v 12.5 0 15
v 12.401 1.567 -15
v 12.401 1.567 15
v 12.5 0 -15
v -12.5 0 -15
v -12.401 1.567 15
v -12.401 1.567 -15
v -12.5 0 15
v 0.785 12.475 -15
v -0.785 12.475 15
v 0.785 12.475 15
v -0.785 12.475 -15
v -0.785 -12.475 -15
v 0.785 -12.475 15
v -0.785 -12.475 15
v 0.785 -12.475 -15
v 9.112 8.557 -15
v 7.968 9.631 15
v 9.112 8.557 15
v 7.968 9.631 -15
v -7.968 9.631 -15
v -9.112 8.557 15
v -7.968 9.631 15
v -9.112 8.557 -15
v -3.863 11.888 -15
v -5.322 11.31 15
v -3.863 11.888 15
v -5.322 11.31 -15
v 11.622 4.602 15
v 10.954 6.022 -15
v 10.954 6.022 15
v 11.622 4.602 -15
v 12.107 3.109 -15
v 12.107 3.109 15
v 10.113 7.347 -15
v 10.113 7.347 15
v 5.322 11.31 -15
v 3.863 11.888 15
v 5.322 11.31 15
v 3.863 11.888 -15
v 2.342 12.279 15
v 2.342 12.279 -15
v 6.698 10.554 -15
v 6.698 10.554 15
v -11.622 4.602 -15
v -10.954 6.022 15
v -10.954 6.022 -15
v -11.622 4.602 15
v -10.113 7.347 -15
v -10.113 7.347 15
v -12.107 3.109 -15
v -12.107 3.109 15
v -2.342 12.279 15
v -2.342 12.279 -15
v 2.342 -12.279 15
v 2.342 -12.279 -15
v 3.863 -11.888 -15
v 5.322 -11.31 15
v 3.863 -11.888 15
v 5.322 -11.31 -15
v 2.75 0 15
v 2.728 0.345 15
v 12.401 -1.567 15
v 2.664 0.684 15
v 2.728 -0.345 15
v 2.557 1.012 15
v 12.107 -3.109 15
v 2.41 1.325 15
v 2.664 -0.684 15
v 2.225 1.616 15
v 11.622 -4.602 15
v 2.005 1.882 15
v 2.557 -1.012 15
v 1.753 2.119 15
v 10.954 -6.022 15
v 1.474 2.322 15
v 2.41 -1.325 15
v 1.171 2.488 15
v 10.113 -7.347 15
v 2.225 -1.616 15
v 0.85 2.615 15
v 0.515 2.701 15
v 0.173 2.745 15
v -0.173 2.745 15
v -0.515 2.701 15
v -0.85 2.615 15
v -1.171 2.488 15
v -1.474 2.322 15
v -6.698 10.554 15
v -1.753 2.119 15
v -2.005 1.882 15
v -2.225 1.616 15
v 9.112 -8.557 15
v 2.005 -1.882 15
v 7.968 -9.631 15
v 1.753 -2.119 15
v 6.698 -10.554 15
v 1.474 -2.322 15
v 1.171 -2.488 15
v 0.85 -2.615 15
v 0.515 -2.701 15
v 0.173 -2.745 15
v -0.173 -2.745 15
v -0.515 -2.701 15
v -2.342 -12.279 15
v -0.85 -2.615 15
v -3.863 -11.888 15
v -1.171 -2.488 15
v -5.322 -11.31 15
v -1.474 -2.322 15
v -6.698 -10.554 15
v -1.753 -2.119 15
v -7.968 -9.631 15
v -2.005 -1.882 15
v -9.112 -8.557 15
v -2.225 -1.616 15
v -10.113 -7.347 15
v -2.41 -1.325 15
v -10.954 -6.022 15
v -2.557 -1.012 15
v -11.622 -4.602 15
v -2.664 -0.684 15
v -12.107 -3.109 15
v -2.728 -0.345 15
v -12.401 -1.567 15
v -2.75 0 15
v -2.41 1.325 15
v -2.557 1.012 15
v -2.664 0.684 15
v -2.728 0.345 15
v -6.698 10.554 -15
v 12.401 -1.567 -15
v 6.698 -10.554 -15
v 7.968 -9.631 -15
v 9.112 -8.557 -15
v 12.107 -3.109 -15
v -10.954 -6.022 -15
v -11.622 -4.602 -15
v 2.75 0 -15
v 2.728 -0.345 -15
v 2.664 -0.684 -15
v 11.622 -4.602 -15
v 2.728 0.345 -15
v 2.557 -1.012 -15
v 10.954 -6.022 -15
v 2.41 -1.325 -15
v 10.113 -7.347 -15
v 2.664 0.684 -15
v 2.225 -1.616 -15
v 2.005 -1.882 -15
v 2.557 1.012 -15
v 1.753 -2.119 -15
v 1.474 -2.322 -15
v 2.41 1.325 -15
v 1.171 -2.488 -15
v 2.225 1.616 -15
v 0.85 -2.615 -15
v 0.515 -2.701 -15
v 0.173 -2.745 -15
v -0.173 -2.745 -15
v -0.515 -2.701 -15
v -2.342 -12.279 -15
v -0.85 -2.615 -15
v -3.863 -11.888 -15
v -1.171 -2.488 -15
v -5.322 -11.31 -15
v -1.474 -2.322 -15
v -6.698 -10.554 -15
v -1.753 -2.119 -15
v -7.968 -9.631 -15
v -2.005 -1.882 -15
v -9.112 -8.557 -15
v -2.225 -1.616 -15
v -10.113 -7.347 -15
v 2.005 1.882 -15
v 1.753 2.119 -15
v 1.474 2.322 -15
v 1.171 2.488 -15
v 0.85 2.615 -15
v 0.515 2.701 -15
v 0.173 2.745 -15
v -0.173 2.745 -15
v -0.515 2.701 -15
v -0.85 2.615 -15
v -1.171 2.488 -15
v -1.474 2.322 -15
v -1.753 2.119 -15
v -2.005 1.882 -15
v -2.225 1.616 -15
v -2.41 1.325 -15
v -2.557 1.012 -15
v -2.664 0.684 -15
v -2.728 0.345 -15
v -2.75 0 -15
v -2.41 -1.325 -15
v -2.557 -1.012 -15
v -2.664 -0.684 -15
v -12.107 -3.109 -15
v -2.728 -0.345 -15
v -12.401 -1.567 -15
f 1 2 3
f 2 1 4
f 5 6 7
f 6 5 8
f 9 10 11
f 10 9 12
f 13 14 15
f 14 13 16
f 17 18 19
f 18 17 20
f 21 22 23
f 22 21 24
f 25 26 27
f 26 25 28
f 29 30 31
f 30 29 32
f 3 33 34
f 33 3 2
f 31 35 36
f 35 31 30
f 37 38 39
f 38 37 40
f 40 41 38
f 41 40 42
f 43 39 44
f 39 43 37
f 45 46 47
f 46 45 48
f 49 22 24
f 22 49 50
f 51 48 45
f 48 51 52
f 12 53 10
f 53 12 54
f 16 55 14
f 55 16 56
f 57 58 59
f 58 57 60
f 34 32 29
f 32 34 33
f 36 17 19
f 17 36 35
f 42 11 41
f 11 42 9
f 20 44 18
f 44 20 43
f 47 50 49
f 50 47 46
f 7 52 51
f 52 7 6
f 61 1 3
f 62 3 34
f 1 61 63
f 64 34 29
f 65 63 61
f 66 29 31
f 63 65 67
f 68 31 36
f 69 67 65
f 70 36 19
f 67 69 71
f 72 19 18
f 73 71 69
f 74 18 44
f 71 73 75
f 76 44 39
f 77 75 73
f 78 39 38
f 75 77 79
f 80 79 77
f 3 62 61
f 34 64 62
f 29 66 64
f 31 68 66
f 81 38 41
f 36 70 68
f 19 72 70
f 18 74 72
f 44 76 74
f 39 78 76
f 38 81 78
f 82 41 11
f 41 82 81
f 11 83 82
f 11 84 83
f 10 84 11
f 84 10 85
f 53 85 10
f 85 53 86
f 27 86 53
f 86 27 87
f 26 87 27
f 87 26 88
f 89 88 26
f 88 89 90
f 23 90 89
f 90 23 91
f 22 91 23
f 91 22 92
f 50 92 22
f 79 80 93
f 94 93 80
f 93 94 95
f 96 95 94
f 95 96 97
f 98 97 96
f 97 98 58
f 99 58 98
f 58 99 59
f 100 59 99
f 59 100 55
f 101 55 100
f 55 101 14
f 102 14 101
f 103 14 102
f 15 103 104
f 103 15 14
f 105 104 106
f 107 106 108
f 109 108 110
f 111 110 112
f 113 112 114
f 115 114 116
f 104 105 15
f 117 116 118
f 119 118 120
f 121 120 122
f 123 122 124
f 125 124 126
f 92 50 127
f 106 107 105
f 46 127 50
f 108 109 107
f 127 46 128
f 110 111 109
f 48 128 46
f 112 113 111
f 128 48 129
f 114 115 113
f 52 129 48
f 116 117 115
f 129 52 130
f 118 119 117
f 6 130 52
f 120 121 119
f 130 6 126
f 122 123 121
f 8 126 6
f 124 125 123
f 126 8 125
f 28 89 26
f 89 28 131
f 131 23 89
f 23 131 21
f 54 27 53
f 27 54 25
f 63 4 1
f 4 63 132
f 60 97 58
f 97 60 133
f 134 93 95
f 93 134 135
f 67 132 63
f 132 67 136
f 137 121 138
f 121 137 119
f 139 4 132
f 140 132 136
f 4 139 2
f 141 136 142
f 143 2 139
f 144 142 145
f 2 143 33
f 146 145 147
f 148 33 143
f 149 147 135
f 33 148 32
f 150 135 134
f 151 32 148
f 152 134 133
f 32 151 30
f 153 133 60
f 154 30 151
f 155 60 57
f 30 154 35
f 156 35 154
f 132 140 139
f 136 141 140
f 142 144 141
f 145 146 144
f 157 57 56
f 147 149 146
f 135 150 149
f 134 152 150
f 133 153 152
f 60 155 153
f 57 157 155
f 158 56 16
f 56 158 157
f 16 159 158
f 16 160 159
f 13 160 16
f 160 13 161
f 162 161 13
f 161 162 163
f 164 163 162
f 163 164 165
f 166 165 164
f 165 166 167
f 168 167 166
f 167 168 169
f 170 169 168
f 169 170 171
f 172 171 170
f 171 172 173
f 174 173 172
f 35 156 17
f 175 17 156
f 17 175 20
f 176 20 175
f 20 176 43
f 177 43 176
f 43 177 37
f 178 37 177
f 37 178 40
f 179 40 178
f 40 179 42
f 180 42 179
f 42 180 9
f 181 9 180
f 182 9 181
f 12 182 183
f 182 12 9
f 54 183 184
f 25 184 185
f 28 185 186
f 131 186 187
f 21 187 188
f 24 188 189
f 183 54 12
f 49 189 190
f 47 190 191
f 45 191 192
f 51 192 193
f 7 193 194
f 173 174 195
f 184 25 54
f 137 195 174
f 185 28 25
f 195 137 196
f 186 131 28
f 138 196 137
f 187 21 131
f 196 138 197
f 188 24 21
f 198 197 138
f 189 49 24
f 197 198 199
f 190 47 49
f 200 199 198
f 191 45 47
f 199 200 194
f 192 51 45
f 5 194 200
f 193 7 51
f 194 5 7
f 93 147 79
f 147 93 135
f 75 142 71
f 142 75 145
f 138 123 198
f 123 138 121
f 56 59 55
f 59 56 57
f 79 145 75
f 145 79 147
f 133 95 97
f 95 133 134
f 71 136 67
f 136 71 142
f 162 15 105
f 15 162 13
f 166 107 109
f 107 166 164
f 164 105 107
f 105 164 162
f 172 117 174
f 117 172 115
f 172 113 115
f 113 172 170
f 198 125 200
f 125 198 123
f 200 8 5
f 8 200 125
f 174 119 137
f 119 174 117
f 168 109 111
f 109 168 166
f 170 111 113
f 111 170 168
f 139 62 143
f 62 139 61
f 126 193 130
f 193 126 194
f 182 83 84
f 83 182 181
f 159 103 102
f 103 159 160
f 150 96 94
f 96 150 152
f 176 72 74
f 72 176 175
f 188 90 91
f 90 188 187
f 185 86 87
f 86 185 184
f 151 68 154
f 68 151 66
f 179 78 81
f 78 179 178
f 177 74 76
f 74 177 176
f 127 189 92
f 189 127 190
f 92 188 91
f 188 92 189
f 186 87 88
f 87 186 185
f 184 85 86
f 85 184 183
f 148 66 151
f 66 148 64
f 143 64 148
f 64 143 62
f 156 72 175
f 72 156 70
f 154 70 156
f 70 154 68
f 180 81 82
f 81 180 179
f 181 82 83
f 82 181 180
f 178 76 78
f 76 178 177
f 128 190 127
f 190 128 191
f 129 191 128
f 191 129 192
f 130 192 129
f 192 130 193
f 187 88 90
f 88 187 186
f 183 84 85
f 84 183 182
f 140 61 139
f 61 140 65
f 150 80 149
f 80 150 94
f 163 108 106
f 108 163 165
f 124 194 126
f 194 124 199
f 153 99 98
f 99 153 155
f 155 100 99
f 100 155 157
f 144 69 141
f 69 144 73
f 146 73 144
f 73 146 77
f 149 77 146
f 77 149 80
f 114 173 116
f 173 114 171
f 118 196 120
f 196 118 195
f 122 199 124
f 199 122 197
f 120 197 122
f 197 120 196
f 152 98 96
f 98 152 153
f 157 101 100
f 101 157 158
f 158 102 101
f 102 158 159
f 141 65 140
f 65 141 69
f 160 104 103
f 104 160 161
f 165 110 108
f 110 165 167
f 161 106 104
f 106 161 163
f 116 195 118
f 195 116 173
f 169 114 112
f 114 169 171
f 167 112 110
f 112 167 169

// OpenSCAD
$fn = 50;


difference() {
	union() {
		translate(v = [0, 0, -15.0000000000]) {
			cylinder(h = 30, r = 12.5000000000);
		}
	}
	union() {
		translate(v = [0, 0, -100.0000000000]) {
			cylinder(h = 200, r = 2.7500000000);
		}
	}
}
